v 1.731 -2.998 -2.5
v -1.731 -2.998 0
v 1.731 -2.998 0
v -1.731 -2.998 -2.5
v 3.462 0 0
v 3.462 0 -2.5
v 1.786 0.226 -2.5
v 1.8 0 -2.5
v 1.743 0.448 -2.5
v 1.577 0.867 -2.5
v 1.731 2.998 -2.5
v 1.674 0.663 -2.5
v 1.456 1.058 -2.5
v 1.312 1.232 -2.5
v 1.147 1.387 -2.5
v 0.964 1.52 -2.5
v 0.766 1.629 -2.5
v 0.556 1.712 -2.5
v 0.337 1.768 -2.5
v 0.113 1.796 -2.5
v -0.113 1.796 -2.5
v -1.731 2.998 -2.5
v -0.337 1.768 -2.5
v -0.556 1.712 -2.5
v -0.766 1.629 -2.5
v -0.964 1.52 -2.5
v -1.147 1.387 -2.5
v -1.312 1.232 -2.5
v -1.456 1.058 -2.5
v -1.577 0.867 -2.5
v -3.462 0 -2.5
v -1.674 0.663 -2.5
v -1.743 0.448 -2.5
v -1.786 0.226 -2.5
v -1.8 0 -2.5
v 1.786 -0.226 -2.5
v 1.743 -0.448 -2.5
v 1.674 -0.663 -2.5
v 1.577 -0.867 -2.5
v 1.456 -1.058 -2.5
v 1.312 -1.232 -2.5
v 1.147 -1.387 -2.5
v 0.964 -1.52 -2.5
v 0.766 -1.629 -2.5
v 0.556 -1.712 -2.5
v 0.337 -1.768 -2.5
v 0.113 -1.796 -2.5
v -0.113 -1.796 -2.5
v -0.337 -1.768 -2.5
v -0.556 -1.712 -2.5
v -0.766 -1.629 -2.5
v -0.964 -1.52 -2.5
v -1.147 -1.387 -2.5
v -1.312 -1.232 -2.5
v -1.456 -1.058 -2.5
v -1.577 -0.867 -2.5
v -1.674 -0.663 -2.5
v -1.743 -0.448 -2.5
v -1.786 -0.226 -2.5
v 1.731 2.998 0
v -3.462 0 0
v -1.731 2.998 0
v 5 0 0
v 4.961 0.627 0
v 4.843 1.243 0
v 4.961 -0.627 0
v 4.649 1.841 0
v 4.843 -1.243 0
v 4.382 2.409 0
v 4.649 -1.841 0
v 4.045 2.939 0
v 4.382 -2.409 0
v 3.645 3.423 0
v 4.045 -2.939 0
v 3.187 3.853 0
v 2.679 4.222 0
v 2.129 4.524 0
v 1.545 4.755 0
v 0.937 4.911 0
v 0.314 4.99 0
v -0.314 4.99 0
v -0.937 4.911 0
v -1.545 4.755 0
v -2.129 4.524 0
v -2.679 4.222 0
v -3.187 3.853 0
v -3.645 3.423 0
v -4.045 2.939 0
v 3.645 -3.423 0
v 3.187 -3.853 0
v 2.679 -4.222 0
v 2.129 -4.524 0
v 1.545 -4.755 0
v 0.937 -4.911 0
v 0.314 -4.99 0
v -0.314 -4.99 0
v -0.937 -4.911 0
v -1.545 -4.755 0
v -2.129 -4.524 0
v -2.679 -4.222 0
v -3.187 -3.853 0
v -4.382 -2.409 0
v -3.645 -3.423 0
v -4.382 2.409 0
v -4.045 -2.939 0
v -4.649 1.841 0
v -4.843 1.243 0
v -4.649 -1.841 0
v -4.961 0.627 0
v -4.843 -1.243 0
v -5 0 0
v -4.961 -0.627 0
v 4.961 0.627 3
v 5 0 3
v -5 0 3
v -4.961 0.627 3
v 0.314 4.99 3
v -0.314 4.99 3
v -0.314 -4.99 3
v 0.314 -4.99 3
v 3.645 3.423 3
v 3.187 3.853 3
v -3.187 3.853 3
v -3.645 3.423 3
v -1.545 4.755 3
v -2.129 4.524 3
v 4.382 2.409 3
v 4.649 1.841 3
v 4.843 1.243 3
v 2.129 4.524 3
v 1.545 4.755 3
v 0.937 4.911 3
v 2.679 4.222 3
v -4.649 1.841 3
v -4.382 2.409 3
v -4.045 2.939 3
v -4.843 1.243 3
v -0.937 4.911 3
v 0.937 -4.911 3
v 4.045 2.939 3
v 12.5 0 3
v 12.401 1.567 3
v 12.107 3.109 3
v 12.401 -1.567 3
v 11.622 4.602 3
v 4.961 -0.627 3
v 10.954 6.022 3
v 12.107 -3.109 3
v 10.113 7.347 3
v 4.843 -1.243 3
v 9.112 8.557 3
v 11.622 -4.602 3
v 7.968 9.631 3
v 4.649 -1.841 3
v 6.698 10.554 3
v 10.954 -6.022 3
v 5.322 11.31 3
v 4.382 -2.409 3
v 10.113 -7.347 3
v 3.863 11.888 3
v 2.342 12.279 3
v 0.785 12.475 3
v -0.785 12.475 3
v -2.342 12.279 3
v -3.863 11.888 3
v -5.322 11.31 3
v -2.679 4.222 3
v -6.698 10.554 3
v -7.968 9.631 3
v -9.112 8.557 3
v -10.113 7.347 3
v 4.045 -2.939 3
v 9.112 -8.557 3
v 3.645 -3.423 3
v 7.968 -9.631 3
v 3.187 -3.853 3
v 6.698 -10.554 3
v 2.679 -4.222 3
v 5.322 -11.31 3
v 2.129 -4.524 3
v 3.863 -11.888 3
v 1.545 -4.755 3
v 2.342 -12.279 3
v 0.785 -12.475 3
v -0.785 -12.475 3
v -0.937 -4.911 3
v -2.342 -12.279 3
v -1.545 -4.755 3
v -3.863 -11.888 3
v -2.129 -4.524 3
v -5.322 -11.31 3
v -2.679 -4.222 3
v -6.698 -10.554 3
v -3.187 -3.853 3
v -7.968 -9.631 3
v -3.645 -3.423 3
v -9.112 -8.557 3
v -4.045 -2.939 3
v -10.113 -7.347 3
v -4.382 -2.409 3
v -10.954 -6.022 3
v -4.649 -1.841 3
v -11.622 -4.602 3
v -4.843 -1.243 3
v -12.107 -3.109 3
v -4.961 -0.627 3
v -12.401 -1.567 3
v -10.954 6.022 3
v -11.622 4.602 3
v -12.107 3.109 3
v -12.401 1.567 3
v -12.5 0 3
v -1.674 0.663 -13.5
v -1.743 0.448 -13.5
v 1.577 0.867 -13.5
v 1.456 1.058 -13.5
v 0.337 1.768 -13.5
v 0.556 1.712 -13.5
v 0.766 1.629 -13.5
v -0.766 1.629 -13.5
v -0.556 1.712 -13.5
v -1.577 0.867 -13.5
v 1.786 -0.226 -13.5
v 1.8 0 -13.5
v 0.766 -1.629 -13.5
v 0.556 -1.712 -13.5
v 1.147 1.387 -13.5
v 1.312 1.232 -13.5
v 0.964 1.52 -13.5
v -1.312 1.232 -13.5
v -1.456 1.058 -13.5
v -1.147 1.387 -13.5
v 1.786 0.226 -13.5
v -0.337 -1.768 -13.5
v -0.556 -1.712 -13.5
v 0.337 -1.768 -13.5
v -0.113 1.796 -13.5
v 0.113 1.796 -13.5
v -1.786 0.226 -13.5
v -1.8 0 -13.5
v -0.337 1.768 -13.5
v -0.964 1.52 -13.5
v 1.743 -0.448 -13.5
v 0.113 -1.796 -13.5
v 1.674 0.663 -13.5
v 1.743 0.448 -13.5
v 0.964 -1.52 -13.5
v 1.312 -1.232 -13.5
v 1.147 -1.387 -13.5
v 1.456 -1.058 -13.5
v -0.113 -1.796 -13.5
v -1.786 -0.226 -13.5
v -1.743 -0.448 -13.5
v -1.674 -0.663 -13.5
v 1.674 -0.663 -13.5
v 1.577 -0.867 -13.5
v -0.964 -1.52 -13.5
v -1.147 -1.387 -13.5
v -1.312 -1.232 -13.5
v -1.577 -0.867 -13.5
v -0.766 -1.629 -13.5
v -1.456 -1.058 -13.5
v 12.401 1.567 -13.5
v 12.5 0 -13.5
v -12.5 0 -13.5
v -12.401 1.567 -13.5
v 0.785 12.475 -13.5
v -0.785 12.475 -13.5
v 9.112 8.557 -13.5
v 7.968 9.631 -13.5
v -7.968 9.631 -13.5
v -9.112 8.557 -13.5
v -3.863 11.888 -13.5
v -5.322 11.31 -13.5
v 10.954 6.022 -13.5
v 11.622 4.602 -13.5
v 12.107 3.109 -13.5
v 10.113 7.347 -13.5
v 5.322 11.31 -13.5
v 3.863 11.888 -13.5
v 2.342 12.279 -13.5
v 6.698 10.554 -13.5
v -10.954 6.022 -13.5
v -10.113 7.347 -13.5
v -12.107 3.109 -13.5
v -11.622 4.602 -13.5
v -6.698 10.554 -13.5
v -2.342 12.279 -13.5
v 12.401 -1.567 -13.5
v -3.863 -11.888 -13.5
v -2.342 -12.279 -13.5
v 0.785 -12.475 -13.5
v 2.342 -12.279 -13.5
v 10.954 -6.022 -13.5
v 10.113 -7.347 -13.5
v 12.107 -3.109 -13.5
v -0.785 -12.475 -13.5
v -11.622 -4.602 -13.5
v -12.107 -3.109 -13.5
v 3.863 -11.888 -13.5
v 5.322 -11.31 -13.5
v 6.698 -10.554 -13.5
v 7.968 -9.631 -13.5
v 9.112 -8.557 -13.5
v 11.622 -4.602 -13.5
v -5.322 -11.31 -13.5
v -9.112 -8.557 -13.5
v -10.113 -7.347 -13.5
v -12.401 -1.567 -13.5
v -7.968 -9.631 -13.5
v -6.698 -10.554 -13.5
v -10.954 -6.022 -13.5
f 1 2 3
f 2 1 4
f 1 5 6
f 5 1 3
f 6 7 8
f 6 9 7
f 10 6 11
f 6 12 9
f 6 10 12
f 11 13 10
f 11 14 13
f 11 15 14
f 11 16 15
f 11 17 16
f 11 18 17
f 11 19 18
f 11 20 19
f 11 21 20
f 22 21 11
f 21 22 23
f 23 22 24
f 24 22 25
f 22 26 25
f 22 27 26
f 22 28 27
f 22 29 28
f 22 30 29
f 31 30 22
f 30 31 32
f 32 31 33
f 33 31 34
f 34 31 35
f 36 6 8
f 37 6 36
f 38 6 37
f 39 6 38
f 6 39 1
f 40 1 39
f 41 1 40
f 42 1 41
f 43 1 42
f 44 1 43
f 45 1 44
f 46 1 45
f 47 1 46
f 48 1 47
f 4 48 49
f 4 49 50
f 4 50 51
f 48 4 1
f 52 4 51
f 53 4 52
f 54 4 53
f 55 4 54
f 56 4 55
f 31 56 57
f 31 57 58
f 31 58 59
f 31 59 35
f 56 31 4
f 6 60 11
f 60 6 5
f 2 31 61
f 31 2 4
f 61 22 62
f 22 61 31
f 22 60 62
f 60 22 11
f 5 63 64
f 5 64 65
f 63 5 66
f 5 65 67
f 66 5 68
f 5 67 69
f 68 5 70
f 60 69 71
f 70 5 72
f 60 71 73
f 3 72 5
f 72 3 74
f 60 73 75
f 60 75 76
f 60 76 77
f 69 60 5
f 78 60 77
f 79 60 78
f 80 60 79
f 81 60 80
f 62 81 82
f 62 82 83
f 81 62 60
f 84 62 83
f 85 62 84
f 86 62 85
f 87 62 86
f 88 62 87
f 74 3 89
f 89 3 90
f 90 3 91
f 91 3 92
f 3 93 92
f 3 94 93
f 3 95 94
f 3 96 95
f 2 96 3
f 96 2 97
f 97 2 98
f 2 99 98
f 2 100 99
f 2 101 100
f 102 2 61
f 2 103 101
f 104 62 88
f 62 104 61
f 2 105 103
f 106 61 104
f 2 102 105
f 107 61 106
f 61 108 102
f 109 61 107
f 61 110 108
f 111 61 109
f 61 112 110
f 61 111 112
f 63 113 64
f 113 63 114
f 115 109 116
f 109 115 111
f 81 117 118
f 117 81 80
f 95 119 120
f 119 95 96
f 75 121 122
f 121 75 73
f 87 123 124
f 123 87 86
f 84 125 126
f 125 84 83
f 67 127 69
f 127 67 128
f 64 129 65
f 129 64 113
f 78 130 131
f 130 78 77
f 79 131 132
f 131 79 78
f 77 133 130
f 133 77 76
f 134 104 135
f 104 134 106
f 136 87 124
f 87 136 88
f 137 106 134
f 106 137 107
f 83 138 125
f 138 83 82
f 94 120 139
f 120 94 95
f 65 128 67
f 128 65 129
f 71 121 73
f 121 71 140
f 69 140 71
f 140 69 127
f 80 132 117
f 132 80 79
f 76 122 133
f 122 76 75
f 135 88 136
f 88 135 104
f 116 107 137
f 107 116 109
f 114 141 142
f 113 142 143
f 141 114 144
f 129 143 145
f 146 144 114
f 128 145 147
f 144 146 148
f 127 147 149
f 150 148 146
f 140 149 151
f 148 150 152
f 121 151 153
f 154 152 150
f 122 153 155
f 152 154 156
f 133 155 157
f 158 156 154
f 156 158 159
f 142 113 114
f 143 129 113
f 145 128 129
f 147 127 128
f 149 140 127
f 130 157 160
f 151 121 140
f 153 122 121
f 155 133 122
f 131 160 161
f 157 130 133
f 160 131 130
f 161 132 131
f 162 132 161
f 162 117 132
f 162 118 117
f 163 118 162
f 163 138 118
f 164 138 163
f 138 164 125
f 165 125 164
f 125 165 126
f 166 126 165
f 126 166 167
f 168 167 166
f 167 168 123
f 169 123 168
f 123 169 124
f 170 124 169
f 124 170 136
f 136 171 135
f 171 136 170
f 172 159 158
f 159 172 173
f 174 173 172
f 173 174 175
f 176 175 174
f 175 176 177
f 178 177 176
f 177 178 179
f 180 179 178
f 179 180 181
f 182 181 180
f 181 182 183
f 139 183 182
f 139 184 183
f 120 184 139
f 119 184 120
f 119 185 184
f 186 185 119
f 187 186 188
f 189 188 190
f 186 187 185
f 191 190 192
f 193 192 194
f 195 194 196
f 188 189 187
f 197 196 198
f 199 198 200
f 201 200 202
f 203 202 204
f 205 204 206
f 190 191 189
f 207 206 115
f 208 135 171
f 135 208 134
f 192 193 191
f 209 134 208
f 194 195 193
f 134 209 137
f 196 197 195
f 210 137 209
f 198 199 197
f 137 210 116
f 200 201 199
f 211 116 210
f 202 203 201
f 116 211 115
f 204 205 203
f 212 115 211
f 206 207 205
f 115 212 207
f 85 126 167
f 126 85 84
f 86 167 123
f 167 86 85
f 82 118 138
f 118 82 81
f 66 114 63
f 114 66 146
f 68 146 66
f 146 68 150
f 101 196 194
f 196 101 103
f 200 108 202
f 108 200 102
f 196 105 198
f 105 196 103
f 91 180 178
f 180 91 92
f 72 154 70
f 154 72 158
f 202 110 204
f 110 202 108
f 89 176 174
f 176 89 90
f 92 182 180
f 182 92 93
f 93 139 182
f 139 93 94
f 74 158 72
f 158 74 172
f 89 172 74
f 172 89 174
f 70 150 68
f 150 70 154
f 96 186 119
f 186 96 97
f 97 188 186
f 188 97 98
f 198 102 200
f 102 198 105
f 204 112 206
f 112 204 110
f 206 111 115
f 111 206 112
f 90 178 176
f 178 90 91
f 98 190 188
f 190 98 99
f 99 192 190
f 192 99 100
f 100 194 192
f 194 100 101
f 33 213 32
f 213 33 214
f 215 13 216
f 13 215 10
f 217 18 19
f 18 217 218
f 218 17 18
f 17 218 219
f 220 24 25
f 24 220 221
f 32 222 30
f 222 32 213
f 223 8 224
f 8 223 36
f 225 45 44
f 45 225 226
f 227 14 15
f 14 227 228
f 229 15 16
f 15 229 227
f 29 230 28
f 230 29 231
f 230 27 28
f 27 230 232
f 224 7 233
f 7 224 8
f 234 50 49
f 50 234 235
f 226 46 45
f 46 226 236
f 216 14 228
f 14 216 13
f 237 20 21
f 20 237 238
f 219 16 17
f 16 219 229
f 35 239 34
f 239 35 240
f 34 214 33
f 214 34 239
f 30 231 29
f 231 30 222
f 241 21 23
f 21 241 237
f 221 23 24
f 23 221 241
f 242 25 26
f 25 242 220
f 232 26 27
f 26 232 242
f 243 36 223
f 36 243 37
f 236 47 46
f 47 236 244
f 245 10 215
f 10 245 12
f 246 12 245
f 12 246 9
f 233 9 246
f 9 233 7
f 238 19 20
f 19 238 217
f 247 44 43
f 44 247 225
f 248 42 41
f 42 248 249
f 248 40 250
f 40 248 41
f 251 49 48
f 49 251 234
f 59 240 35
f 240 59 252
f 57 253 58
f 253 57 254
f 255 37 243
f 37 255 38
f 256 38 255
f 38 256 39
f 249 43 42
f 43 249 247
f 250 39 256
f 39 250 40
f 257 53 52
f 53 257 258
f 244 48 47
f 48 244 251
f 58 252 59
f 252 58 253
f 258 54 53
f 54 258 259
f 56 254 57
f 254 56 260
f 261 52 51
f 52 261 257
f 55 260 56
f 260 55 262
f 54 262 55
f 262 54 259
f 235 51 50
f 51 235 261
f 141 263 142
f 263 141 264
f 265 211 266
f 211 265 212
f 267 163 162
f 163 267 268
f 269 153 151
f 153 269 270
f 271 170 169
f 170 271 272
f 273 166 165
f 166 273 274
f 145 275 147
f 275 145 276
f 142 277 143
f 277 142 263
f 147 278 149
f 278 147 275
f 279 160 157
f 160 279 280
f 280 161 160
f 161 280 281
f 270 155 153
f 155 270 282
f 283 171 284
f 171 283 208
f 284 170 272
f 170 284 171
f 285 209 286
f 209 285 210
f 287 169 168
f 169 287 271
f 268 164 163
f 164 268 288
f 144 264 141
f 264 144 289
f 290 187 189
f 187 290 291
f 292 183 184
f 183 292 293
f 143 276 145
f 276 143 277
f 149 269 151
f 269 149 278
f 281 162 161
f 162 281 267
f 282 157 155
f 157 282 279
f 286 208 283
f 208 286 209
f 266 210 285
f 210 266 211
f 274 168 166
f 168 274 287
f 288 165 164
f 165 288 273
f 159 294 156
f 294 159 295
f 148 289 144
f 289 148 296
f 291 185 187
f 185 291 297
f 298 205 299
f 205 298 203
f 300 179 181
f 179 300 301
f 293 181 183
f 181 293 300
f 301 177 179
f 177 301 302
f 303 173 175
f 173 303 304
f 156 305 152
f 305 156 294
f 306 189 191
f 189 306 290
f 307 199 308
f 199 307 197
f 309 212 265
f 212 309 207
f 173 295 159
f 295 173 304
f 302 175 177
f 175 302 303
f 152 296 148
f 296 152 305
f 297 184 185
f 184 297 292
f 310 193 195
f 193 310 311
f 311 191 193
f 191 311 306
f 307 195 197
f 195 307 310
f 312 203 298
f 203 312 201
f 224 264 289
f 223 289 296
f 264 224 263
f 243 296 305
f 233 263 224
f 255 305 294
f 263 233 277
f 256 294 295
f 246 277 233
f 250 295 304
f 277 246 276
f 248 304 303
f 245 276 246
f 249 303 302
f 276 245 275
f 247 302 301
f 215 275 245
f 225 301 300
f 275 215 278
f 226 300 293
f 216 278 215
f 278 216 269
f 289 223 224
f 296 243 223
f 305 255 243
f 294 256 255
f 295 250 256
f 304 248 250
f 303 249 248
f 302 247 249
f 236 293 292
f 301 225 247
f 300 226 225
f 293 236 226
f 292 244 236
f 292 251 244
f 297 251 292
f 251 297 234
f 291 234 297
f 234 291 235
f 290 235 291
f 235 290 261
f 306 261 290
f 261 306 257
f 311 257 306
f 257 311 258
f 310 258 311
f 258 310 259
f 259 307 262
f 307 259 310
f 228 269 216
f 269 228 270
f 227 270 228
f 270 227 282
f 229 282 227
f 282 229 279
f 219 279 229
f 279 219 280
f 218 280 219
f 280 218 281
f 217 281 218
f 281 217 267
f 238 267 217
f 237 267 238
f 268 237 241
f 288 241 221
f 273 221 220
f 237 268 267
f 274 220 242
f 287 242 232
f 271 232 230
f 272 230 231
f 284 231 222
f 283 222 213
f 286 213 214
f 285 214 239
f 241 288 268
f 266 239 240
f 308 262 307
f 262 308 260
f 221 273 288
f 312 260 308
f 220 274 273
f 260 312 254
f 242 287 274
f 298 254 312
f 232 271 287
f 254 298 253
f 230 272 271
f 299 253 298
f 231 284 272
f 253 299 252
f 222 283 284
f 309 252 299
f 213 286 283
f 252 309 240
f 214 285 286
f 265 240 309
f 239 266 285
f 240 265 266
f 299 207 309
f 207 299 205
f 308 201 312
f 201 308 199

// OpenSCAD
$fn = 50;


difference() {
	union() {
		translate(v = [0, 0, -13.5000000000]) {
			cylinder(h = 16.5000000000, r = 12.5000000000);
		}
	}
	union() {
		translate(v = [0, 0, 0]) {
			rotate(a = [0, 0, 0]) {
				difference() {
					union() {
						translate(v = [0, 0, -2.5000000000]) {
							linear_extrude(height = 2.5000000000) {
								polygon(points = [[3.4620000000, 0.0000000000], [1.7310000000, 2.9981799479], [-1.7310000000, 2.9981799479], [-3.4620000000, 0.0000000000], [-1.7310000000, -2.9981799479], [1.7310000000, -2.9981799479]]);
							}
						}
					}
					union();
				}
			}
		}
		#cylinder(h = 3, r = 5.0000000000);
		#translate(v = [0, 0, -100.0000000000]) {
			cylinder(h = 200, r = 1.8000000000);
		}
	}
}
